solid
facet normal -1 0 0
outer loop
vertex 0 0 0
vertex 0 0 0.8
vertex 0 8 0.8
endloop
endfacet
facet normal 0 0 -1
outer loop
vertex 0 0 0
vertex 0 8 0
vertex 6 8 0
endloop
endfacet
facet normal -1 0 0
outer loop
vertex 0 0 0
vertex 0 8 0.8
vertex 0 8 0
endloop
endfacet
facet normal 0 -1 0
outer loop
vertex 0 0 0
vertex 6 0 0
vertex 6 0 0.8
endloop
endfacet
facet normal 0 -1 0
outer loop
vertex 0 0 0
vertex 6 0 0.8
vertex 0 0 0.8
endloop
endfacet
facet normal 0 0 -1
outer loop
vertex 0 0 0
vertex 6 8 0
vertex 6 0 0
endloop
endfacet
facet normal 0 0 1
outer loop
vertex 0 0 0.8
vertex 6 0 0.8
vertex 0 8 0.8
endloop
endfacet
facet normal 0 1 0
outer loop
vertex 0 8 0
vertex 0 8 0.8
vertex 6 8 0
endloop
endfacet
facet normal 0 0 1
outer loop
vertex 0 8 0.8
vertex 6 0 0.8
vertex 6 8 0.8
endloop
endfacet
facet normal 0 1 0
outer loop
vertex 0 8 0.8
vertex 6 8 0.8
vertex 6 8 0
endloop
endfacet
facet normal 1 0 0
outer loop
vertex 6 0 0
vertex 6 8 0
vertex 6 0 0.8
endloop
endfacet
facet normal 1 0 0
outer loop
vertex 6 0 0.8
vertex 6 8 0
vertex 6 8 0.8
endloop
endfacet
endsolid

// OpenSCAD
/* Warning, this is a very basic generator with a lot of approximation 
input data : [WSON, S9X, 6x8x0.8mm, 8, , B, C04-00172B]
generated by com.zoubworld.electronics.cad.model3d.Basic
Date : Sun Feb 15 10:50:48 CET 2026
*/

//body
color("black")
translate([0,0,0])
cube([6.0,8.0,0.8], center=false);
